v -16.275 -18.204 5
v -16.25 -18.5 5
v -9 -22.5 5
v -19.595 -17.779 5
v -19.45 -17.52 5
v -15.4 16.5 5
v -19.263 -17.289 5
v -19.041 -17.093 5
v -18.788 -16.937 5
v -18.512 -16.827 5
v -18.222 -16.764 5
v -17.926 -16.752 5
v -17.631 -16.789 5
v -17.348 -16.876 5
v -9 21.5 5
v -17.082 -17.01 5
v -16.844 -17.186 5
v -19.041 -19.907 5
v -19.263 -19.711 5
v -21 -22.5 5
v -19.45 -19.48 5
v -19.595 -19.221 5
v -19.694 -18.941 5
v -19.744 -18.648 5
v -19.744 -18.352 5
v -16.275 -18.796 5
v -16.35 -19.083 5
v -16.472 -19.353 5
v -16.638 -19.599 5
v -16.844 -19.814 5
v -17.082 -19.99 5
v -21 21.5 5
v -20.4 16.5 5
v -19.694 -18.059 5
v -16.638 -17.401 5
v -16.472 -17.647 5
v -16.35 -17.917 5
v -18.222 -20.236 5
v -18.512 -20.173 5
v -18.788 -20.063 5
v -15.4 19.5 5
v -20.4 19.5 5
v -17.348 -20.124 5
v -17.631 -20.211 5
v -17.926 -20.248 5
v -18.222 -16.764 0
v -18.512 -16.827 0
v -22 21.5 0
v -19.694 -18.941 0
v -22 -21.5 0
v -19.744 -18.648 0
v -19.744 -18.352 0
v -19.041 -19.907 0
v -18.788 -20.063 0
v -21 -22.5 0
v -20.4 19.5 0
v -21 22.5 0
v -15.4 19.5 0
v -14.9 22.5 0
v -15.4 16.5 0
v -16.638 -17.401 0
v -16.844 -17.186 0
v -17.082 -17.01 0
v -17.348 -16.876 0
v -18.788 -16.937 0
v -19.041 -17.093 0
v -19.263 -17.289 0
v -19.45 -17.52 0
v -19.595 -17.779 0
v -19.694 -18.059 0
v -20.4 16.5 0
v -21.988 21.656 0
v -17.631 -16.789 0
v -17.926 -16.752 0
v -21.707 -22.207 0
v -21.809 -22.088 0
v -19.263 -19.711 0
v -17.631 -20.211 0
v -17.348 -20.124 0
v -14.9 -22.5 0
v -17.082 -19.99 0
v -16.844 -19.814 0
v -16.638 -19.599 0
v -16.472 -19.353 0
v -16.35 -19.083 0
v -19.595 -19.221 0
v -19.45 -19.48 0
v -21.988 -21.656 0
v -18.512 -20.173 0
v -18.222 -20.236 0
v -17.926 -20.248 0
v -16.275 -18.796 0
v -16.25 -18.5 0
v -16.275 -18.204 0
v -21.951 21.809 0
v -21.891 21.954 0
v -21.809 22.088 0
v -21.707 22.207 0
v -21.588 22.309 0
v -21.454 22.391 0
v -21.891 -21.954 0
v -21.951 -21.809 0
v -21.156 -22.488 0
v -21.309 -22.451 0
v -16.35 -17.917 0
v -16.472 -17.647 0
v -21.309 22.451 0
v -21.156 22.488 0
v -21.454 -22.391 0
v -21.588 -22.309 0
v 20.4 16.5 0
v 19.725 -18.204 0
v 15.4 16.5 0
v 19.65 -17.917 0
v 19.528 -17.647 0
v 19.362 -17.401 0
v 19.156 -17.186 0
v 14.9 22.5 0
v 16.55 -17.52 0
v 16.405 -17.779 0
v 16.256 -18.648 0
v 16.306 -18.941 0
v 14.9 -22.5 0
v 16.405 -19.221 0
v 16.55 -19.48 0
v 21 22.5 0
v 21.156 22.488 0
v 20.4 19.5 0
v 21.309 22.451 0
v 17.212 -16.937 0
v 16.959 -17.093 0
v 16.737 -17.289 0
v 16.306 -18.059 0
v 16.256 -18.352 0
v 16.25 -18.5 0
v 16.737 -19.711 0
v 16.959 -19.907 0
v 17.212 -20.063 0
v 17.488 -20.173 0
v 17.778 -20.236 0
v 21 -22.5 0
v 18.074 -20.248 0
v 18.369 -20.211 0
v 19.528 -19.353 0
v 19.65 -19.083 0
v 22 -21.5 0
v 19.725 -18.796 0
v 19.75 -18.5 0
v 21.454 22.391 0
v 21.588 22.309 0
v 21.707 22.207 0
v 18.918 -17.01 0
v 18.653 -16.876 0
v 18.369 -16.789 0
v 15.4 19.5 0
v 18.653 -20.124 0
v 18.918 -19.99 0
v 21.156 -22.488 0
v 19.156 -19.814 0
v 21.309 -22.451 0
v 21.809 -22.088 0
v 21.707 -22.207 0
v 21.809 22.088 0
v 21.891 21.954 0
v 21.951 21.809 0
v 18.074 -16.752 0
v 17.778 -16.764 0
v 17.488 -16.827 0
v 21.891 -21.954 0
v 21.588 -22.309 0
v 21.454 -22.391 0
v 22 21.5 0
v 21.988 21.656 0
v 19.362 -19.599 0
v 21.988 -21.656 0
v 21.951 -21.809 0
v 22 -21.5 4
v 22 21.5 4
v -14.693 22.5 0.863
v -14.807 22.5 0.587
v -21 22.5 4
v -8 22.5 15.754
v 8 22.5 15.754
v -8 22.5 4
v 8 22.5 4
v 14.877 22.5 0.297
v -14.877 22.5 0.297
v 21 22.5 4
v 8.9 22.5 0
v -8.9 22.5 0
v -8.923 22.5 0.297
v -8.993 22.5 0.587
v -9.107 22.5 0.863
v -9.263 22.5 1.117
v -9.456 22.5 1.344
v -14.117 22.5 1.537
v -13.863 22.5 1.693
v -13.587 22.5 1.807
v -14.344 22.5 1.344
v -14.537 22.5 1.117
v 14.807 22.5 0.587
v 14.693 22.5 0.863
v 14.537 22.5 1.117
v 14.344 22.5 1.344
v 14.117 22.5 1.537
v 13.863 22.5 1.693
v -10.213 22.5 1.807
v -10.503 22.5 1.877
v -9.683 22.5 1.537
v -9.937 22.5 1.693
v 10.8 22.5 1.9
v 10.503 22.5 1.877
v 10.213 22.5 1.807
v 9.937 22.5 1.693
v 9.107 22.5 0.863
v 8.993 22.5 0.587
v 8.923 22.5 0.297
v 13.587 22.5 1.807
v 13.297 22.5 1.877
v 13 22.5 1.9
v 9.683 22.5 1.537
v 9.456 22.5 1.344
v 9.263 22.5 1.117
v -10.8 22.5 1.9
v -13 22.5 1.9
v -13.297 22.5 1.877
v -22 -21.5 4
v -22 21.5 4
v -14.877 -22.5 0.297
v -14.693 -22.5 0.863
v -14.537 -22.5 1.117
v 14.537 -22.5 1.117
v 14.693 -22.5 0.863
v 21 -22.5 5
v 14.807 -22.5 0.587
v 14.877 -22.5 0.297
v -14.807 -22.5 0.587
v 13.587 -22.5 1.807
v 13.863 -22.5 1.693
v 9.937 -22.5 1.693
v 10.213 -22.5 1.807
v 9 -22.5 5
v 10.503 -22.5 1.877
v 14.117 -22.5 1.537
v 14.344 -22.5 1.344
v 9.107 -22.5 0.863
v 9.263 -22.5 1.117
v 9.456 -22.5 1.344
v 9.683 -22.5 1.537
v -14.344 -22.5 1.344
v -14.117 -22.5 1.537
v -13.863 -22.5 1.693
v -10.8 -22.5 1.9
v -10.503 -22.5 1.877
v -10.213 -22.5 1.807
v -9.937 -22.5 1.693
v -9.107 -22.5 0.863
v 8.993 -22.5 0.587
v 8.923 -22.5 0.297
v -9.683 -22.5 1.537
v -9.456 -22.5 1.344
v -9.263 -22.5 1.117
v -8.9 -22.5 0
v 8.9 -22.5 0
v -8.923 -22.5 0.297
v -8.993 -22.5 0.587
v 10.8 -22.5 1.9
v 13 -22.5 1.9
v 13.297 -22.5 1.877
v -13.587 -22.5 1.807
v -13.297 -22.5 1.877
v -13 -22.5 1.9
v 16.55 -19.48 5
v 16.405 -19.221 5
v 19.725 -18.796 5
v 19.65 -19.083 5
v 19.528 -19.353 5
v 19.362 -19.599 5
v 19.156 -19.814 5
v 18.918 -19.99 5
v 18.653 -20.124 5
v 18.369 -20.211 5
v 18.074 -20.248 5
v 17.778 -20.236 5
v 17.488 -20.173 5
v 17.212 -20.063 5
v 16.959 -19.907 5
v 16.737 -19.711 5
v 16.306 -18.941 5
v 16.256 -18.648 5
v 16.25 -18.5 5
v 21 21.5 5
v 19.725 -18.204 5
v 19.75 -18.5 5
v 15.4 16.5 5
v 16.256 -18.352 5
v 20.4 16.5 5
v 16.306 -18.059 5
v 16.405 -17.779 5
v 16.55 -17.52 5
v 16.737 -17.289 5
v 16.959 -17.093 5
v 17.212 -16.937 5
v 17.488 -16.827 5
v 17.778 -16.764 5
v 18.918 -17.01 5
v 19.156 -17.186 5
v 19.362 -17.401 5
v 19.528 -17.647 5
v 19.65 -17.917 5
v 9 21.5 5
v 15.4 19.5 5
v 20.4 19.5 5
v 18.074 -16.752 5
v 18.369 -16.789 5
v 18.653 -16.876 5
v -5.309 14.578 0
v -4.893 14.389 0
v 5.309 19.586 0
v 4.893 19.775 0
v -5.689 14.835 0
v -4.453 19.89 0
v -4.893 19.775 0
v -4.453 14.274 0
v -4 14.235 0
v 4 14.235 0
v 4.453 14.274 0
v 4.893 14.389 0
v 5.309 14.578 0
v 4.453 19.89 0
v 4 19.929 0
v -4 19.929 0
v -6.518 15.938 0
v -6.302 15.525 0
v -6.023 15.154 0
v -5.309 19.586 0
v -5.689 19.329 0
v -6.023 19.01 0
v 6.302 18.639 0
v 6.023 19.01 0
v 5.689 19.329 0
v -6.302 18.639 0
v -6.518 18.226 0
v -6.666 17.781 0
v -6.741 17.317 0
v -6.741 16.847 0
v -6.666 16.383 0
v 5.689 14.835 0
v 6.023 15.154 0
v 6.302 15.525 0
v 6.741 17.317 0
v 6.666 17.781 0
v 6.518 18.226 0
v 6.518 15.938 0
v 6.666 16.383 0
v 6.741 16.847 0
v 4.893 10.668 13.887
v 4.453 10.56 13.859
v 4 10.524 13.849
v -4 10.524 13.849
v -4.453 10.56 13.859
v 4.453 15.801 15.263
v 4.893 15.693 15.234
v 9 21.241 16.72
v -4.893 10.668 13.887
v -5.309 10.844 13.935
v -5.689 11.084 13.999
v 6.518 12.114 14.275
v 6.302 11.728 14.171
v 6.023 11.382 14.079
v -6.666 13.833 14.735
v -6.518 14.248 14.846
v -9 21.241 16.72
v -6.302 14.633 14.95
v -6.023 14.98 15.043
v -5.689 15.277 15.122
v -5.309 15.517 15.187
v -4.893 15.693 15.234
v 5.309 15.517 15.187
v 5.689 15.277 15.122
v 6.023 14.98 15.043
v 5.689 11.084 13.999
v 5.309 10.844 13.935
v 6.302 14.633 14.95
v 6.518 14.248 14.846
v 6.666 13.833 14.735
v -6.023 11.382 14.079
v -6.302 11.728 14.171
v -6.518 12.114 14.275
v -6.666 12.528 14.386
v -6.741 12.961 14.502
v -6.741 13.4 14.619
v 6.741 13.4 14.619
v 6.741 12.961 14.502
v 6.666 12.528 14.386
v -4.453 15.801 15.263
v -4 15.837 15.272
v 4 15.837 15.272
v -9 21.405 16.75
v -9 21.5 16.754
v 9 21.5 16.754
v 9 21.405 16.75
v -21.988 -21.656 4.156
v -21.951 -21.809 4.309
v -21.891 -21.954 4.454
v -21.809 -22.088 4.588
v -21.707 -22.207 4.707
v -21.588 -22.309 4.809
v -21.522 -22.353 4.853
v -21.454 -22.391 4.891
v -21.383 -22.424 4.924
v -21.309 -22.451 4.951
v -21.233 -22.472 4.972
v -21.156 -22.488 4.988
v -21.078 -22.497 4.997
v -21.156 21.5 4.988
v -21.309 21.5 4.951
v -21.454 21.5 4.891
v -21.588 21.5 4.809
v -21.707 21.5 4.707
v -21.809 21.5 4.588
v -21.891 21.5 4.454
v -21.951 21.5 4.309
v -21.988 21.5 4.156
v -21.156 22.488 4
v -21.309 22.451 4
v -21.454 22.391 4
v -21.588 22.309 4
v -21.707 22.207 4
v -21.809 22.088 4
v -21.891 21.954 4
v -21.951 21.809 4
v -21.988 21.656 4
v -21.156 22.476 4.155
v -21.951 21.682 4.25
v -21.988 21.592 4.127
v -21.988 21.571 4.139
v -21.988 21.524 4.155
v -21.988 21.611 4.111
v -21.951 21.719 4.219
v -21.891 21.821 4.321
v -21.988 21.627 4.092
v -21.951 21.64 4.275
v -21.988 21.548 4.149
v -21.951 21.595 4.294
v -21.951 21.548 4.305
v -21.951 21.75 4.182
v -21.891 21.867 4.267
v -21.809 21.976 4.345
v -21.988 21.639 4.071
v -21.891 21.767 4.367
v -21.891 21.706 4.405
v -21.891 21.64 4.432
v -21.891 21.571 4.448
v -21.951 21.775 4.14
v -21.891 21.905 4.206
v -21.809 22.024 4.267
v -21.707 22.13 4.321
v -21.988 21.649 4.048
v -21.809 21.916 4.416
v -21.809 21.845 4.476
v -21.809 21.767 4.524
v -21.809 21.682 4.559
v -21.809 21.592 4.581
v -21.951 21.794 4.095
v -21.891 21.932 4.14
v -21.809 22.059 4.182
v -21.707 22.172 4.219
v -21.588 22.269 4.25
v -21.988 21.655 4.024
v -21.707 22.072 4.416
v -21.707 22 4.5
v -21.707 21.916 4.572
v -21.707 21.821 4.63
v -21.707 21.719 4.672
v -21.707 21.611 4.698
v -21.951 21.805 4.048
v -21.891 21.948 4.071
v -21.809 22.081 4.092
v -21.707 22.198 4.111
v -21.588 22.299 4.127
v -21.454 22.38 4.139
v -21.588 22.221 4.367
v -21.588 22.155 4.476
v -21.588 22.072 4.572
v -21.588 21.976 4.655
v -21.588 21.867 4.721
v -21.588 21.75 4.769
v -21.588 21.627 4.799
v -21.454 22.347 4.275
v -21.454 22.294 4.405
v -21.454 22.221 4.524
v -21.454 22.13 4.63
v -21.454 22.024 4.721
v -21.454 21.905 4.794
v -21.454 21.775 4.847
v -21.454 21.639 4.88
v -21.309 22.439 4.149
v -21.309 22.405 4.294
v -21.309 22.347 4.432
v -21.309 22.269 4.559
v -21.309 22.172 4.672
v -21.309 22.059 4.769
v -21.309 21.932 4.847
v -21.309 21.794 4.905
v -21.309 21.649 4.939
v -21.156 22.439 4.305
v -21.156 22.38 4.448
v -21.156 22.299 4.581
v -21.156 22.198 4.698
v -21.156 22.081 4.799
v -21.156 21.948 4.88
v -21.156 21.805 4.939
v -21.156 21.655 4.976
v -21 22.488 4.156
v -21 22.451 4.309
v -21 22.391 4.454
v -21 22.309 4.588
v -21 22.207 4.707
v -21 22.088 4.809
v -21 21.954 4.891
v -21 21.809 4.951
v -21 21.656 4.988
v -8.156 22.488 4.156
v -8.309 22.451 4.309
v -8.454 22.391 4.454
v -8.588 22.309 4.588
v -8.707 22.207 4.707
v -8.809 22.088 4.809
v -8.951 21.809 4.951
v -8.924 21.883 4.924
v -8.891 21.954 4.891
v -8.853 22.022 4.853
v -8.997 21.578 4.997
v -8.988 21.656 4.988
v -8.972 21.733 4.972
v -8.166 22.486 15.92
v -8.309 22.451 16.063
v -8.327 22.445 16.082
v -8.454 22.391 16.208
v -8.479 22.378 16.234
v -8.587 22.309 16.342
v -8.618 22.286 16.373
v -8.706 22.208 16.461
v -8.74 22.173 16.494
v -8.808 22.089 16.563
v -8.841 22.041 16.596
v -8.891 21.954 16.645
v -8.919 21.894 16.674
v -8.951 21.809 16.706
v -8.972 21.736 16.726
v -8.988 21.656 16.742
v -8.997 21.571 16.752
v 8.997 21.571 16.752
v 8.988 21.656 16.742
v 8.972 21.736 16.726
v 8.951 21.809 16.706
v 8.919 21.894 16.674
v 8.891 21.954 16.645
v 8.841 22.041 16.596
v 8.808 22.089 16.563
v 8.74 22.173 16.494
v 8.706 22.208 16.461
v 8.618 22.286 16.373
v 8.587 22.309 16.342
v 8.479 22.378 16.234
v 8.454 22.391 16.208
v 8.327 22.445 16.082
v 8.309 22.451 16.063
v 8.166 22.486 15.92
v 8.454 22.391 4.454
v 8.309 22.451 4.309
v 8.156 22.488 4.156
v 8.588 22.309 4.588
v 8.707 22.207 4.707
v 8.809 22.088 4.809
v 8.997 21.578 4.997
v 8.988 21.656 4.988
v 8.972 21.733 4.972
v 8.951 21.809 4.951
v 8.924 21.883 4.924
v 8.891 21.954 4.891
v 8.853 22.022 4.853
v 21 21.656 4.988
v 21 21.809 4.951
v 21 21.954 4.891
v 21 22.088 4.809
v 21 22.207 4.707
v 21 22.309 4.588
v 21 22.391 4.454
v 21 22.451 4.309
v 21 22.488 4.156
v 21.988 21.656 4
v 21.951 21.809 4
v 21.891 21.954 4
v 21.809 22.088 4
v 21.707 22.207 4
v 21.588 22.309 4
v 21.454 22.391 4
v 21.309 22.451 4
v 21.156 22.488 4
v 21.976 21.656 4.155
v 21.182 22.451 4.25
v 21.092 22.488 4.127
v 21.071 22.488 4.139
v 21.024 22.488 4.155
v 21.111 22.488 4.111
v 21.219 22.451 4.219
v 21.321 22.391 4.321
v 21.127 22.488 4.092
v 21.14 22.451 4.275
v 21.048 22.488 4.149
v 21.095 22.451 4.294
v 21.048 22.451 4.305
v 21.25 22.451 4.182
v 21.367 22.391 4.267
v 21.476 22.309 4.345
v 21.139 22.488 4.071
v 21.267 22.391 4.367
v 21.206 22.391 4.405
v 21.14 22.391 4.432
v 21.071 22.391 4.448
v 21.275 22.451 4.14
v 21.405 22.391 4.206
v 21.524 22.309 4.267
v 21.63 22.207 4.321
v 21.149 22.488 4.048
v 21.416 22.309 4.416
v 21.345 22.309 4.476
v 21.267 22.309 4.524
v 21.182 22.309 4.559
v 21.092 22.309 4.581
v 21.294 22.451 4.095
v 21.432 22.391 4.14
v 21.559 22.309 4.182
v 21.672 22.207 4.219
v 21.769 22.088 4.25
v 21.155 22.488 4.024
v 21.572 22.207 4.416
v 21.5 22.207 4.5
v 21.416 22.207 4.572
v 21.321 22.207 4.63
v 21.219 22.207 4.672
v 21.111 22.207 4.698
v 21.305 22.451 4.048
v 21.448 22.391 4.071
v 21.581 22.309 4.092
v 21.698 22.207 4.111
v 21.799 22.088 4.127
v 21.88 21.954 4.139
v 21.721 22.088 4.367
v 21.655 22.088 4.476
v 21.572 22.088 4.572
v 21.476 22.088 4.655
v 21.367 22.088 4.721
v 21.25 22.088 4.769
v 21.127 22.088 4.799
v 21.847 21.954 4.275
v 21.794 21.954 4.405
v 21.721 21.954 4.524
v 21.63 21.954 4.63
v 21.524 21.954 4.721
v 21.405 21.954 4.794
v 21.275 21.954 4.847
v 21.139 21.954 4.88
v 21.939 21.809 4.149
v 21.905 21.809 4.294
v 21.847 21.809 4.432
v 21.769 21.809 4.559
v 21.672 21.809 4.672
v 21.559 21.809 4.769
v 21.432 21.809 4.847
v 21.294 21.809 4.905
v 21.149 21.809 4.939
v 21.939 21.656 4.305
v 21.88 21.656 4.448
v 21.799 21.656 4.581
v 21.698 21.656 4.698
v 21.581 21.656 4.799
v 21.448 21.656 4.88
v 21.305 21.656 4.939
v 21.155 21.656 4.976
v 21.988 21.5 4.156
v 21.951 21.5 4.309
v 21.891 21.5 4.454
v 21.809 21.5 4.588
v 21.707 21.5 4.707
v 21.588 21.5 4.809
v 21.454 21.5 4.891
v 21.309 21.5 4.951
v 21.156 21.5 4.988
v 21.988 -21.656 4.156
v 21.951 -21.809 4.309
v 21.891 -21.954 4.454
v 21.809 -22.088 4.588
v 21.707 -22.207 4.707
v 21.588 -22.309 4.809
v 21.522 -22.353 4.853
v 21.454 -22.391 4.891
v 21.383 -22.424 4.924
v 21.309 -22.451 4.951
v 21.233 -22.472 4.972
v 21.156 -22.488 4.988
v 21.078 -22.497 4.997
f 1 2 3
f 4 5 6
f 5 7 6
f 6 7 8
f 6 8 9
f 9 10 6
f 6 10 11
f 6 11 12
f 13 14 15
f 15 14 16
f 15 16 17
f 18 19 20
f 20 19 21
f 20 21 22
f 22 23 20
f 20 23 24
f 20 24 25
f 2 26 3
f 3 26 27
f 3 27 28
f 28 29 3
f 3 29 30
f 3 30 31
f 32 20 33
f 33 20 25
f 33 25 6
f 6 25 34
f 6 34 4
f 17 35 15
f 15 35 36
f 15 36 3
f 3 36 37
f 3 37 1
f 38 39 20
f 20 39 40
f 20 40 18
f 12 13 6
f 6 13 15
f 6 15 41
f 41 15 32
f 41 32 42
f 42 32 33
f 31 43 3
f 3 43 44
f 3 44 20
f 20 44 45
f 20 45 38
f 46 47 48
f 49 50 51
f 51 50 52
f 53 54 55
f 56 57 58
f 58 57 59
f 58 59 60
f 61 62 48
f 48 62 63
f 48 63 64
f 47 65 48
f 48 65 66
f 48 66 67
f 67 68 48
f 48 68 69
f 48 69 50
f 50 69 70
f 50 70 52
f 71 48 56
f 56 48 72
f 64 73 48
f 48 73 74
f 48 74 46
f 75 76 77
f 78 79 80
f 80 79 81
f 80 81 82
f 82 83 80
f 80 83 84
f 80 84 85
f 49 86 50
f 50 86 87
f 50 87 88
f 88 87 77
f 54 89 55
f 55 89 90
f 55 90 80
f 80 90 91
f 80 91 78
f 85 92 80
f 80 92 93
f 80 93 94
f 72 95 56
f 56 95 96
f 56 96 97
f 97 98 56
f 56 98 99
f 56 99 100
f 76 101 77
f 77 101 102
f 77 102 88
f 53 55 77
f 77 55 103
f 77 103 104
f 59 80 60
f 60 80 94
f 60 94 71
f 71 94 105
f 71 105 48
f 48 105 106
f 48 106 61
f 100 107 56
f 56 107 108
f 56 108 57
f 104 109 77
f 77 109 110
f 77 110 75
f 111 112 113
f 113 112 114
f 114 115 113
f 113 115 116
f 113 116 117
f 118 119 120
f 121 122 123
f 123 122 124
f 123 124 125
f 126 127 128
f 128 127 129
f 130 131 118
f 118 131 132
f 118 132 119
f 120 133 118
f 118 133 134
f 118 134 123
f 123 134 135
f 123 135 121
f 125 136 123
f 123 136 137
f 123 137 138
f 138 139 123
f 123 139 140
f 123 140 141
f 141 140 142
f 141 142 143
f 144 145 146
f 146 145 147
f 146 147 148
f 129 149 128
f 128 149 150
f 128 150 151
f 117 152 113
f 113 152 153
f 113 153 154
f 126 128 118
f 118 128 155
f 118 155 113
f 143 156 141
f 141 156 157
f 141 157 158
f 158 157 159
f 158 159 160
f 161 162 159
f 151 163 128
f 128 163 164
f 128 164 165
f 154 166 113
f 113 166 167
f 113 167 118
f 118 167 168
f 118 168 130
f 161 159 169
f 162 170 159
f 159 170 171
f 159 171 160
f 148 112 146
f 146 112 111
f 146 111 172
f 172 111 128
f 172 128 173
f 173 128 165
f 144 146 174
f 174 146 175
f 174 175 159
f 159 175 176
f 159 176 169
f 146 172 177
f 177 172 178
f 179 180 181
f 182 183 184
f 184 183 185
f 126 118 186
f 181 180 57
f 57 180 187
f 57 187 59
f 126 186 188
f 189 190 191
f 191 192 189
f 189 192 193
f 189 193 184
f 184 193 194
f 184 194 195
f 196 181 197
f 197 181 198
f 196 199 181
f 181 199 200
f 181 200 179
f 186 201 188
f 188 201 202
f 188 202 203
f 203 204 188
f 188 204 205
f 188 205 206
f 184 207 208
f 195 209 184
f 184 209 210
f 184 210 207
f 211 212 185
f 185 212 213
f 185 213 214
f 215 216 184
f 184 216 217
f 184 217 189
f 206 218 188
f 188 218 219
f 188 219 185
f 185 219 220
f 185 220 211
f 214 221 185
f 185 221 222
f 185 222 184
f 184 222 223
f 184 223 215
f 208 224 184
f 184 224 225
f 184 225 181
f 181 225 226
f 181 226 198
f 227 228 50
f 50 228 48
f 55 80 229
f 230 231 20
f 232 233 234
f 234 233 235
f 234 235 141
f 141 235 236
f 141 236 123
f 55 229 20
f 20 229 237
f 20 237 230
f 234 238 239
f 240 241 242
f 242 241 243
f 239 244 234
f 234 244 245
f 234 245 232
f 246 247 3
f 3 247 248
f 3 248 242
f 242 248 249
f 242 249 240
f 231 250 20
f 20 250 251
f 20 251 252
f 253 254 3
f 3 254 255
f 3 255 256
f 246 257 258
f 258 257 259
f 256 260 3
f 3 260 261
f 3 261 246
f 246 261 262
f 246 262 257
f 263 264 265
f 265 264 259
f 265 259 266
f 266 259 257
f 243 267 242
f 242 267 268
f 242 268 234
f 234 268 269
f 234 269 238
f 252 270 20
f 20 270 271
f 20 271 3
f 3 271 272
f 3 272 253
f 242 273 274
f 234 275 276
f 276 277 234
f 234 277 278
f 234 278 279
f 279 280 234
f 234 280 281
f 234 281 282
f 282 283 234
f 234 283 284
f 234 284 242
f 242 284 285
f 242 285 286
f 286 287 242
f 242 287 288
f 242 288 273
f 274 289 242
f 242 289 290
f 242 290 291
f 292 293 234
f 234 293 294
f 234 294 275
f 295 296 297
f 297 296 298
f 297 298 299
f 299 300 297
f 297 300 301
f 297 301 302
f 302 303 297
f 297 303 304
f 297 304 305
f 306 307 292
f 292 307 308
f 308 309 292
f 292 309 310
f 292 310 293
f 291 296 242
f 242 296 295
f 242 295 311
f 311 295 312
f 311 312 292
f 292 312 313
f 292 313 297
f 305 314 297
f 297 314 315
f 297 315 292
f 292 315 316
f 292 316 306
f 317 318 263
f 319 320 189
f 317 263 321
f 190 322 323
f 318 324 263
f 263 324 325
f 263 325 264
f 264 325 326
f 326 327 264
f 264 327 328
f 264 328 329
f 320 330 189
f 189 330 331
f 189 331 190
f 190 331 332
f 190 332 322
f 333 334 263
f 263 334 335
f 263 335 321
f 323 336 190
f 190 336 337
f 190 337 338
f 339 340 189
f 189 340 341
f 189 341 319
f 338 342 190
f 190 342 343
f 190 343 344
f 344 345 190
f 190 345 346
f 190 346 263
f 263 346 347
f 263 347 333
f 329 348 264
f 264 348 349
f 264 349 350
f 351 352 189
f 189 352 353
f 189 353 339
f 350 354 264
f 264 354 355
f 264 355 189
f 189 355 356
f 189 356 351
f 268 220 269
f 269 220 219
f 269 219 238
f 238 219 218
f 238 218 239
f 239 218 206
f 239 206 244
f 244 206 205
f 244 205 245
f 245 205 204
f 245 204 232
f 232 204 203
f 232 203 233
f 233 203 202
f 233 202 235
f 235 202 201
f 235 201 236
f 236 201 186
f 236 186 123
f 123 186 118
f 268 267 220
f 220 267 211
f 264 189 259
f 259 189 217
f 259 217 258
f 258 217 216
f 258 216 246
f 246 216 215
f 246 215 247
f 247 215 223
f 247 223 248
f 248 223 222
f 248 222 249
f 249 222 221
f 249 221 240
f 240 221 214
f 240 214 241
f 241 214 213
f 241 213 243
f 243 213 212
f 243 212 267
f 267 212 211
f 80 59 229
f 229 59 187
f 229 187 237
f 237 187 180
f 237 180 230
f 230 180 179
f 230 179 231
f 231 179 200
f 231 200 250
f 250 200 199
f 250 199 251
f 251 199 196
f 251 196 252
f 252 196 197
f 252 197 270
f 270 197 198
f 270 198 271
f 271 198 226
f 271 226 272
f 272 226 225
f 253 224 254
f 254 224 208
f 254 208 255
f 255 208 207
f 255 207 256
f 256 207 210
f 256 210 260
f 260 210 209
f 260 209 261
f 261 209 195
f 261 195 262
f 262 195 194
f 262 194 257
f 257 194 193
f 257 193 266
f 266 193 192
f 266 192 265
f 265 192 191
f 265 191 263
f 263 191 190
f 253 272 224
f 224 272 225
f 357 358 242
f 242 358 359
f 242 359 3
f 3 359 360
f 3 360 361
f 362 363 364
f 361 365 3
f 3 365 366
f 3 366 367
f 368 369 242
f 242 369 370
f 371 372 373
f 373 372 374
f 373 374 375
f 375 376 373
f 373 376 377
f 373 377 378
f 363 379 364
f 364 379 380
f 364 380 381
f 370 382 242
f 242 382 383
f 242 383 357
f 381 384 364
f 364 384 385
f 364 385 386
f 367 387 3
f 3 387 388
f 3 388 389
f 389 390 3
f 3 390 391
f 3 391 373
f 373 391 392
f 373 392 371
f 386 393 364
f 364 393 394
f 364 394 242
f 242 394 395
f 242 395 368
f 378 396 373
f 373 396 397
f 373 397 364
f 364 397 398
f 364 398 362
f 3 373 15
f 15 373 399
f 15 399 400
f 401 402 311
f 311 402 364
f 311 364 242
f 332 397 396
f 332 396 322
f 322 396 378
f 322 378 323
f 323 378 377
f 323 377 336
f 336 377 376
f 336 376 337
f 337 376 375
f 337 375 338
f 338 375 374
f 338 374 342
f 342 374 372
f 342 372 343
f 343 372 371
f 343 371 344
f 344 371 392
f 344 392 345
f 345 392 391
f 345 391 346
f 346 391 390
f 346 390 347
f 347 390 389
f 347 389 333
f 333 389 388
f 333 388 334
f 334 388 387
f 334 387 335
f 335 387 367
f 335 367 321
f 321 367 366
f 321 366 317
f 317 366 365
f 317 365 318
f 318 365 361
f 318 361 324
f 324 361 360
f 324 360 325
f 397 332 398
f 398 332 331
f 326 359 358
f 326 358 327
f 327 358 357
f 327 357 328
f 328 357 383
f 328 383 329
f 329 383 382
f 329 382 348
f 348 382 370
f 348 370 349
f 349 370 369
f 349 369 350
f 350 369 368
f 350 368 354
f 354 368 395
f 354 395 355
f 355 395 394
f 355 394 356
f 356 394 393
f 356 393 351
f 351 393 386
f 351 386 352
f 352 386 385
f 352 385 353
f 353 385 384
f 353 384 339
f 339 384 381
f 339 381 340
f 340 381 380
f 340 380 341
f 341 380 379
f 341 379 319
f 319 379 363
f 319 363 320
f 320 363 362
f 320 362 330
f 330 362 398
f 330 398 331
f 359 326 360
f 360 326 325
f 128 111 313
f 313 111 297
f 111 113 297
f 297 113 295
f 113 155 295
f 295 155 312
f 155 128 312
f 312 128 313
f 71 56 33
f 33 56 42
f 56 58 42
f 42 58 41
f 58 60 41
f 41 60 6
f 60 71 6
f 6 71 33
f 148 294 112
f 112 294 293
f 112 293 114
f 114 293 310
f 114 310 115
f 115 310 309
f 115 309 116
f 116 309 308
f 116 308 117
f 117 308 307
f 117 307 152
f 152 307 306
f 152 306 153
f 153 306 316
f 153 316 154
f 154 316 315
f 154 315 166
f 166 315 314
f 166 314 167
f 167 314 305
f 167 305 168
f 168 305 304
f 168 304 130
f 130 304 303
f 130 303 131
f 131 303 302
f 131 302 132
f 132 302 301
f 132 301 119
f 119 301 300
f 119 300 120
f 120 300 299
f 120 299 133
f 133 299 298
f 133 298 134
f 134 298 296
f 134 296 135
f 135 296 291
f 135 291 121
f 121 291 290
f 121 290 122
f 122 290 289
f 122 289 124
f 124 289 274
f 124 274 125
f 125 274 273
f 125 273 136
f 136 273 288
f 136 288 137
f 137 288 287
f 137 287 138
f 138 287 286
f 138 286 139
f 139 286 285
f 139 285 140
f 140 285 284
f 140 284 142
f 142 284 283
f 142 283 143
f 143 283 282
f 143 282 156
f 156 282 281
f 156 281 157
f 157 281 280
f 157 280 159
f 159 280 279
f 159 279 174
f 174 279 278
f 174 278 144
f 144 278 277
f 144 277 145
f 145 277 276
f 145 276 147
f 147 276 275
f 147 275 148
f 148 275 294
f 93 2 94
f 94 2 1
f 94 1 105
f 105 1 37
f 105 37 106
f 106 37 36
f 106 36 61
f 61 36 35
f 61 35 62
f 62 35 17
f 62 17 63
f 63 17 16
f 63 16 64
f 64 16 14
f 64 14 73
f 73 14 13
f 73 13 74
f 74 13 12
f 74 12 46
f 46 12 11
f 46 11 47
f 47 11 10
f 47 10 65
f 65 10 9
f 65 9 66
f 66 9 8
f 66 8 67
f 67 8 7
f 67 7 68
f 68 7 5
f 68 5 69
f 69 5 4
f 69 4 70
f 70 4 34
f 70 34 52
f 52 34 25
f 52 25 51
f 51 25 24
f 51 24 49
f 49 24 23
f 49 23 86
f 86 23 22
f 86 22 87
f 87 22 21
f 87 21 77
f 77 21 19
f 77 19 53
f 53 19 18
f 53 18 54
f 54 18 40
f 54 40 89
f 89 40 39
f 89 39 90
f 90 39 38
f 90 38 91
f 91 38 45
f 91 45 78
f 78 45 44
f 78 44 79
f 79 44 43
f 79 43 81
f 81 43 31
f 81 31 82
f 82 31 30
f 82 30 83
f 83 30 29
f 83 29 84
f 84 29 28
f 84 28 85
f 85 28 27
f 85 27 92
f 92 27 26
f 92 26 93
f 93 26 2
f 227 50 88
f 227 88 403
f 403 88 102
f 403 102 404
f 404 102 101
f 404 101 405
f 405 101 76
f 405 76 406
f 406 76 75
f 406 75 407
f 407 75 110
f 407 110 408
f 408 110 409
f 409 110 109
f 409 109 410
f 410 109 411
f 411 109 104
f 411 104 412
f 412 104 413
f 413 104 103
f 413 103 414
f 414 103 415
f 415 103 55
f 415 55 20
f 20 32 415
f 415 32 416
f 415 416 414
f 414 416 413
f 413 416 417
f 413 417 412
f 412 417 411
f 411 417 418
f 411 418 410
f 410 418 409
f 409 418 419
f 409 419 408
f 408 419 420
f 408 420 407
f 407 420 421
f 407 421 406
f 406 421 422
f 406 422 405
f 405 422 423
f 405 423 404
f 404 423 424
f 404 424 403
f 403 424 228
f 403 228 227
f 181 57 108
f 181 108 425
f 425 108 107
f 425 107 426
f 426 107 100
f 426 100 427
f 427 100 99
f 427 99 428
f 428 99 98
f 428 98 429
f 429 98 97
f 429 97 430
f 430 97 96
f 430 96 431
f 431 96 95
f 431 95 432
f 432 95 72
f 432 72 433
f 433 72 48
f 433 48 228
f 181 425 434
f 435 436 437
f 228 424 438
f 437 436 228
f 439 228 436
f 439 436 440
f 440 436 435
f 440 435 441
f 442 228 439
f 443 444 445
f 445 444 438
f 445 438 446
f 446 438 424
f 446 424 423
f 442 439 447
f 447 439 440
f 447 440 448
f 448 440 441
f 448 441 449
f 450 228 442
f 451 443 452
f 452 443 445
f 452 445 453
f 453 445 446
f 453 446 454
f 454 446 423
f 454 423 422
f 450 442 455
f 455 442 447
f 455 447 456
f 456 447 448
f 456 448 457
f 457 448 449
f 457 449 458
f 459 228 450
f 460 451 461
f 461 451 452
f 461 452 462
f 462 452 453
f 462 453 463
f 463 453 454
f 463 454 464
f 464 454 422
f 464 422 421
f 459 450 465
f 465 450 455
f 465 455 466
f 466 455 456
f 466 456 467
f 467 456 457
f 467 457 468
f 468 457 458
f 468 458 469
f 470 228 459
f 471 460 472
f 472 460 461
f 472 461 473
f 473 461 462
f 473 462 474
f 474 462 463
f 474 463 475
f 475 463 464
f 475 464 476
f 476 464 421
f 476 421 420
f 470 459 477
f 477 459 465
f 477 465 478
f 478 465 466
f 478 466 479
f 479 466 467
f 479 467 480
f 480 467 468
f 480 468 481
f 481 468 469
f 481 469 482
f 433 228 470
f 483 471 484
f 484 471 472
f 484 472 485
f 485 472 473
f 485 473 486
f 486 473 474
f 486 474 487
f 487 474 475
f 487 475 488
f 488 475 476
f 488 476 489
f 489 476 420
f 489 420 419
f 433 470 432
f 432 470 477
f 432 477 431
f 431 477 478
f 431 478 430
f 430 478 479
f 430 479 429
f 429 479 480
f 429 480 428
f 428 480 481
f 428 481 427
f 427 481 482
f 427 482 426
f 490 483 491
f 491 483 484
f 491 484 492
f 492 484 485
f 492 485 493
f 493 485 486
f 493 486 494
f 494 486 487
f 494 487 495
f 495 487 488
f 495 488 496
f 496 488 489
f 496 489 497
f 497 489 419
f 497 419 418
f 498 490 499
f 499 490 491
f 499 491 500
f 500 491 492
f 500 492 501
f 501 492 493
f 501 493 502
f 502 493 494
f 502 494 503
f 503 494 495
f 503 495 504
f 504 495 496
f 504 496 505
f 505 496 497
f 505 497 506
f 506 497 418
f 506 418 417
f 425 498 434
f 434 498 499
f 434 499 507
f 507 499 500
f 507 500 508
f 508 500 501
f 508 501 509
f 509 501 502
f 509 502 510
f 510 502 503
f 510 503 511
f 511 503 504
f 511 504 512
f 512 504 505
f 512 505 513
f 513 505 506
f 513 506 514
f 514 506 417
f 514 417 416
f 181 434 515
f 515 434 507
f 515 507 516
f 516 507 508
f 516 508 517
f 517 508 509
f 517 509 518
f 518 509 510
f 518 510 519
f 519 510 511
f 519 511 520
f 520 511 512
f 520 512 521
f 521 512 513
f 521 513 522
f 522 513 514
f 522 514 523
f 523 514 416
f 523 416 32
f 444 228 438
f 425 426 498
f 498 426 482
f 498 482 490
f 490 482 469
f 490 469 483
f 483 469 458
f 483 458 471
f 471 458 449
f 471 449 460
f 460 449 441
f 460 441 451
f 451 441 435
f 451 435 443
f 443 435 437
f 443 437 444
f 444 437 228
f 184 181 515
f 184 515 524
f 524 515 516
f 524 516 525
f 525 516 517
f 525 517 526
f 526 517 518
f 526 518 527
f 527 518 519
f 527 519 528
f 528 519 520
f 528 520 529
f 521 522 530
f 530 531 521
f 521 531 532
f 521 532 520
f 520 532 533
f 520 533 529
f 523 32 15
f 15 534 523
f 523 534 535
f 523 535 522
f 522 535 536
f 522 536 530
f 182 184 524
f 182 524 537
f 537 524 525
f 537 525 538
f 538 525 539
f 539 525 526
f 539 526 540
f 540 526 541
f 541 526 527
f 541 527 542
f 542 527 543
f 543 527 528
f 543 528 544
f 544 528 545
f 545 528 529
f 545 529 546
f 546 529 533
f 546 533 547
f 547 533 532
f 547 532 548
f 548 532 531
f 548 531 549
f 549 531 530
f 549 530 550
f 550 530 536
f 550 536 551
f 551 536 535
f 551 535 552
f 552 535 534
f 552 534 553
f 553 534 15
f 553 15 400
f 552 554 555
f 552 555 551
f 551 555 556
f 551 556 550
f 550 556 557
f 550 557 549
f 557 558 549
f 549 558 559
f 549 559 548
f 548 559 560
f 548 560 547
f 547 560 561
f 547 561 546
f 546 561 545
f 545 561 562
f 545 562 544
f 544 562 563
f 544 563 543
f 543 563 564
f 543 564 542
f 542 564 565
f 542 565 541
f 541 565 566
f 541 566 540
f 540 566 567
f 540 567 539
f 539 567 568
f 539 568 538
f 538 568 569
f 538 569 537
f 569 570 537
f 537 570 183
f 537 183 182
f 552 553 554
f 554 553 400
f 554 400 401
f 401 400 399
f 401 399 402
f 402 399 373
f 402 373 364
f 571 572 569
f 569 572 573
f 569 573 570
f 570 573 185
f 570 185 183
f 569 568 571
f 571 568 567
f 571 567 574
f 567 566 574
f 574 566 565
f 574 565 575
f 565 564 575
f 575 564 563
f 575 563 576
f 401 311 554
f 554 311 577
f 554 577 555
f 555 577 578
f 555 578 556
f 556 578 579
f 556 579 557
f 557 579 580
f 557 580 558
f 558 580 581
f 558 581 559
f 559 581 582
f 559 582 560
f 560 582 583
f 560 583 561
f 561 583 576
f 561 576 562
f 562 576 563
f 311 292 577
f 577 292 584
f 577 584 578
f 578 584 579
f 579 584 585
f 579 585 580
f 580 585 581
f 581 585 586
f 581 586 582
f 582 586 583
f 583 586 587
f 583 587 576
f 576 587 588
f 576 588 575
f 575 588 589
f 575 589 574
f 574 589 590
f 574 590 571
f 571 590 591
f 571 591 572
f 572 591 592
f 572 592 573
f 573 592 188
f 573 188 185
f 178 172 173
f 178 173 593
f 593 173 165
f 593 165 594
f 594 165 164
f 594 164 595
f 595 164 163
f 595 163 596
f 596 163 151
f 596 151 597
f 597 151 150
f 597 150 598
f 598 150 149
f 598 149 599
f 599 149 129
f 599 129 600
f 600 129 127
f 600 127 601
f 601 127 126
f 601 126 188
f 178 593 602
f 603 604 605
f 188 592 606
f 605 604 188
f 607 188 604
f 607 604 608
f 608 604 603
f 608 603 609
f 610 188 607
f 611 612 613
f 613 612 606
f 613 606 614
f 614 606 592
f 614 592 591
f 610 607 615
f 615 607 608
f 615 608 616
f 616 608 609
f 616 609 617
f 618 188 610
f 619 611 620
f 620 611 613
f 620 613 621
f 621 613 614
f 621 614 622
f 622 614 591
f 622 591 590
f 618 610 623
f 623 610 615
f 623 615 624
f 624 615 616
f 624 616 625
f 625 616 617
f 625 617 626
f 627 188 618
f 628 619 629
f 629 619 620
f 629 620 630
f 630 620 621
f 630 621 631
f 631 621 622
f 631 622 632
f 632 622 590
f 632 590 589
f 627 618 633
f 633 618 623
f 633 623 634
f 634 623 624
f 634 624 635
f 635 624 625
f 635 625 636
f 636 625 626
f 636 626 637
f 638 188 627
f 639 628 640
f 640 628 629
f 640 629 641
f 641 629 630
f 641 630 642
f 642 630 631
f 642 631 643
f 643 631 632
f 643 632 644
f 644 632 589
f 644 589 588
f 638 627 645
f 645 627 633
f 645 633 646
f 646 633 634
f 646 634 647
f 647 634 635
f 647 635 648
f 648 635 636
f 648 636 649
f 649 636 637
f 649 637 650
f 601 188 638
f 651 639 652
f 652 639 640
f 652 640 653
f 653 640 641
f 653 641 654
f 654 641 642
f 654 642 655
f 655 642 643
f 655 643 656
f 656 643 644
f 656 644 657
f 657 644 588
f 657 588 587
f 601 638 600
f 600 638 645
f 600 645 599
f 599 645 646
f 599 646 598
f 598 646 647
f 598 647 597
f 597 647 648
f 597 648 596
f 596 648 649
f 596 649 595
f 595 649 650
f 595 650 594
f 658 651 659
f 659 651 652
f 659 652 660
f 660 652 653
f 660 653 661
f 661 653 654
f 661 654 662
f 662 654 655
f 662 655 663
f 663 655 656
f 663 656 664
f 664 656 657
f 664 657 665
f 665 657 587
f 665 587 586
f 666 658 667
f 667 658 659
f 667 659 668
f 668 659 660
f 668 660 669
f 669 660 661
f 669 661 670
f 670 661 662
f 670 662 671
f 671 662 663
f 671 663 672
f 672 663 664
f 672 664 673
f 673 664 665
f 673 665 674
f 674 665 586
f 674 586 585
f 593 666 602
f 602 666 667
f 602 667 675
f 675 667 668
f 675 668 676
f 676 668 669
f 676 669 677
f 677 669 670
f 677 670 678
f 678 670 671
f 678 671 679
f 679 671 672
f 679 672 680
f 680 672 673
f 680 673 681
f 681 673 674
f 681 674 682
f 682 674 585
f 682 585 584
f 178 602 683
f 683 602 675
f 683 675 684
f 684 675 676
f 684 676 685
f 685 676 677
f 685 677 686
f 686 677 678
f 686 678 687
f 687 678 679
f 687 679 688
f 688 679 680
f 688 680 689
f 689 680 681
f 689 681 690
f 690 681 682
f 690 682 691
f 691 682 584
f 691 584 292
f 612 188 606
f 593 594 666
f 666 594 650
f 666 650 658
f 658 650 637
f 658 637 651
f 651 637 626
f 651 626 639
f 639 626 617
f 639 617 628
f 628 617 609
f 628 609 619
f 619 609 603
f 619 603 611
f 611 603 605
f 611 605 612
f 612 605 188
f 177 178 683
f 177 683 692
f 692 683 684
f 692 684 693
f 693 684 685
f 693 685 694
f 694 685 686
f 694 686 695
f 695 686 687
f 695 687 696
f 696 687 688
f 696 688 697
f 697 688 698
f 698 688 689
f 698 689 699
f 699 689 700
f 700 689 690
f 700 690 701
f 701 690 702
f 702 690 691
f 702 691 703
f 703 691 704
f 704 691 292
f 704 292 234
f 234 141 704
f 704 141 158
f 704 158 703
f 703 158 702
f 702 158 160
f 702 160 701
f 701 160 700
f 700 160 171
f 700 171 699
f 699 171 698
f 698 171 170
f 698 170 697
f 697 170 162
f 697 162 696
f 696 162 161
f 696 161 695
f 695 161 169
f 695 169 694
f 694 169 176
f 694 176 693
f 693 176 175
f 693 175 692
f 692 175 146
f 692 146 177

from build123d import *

# Parameters (mm, degrees)
SKETCH1_W                           = 44
SKETCH1_H                           = 45
BASE_DEPTH                          = 5
WIRE_GROOVES_DEPTH                  = 51.338851795
SLANTED_START                       = -22
SLANTED_SCREW_PLATFORM_DEPTH        = 9
MOUNTING_HOLE_SCREW_INSERTION_DEPTH = 36.040152348
SKETCH6_W                           = 5
SKETCH6_H                           = 3
ZIP_TIE_SLOTS_DEPTH                 = 34.699235283
SKETCH7_R                           = 1.75
MOUNT_CLAMPING_HOLES_DEPTH          = 34.699235283
EDGE_FILLETS_R                      = 1


with BuildPart() as part:
    # Sketch1 → Base (new body)
    with BuildSketch(Plane.XY):
        Rectangle(SKETCH1_W, SKETCH1_H)
    extrude(amount=BASE_DEPTH)

    # Sketch2 → Wire Grooves (cut, through all)
    with BuildSketch(Plane(origin=(0, 22.5, 0), x_dir=(1, 0, 0), z_dir=(0, 1, 0))):
        with BuildLine():
            Line((-14.9, 0), (-8.9, 0))
            ThreePointArc((-8.9, 0), (-9.456497116, -1.343502884), (-10.8, -1.9))
            Line((-10.8, -1.9), (-13, -1.9))
            ThreePointArc((-13, -1.9), (-14.343502884, -1.343502884), (-14.9, 0))
        make_face()
        with BuildLine():
            Line((13, -1.9), (10.8, -1.9))
            ThreePointArc((10.8, -1.9), (9.456497116, -1.343502884), (8.9, 0))
            Line((8.9, 0), (14.9, 0))
            ThreePointArc((14.9, 0), (14.343502884, -1.343502884), (13, -1.9))
        make_face()
    extrude(amount=-WIRE_GROOVES_DEPTH, mode=Mode.SUBTRACT)

    # Sketch4 → Slanted Screw Platform (add, symmetric)
    with BuildSketch(Plane(origin=(22, 0, 0), x_dir=(0, 0, -1), z_dir=(1, 0, 0)).offset(SLANTED_START)):
        Polygon((-5, -22.5), (-5, 22.5), (-17.057713659, 22.5), align=None)
    extrude(amount=SLANTED_SCREW_PLATFORM_DEPTH, both=True)

    # Sketch5 → Mounting Hole Screw Insertion (cut, through all)
    with BuildSketch(Plane(origin=(0, -2.757214207, 10.290063509), x_dir=(1, 0, 0), z_dir=(0, -0.2588190451025216, 0.9659258262890681))):
        with BuildLine():
            Line((-4, 19.25), (4, 19.25))
            ThreePointArc((4, 19.25), (6.75, 16.5), (4, 13.75))
            Line((4, 13.75), (-4, 13.75))
            ThreePointArc((-4, 13.75), (-6.75, 16.5), (-4, 19.25))
        make_face()
    extrude(amount=-MOUNTING_HOLE_SCREW_INSERTION_DEPTH, mode=Mode.SUBTRACT)

    # Sketch6 → Zip Tie Slots (cut, through all)
    with BuildSketch(Plane.XY.offset(5)):
        with Locations((-17.9, 18)):
            Rectangle(SKETCH6_W, SKETCH6_H)
        with Locations((17.9, 18)):
            Rectangle(SKETCH6_W, SKETCH6_H)
    extrude(amount=-ZIP_TIE_SLOTS_DEPTH, mode=Mode.SUBTRACT)

    # Sketch7 → Mount Clamping Holes (cut, through all)
    with BuildSketch(Plane.XY.offset(5)):
        with Locations((-18, -18.5)):
            Circle(SKETCH7_R)
        with Locations(Location((18, -18.5, 0), (0, 0, 180))):
            Circle(SKETCH7_R)
    extrude(amount=-MOUNT_CLAMPING_HOLES_DEPTH, mode=Mode.SUBTRACT)

    # Edge Fillets
    edge_fillets_edges = [part.edges().sort_by_distance(p)[0] for p in [
        (-22, 0, 5),
        (-15.5, 22.5, 5),
        (-9, 22.5, 11.02885683),
        (0, 22.5, 17.057713659),
        (22, 0, 5),
        (9, 22.5, 11.02885683),
        (22, -22.5, 2.5),
        (-22, -22.5, 2.5),
        (-22, 22.5, 2.5),
        (22, 22.5, 2.5),
        (15.5, 22.5, 5),
    ]]
    fillet(edge_fillets_edges, radius=EDGE_FILLETS_R)


solid = part.part
